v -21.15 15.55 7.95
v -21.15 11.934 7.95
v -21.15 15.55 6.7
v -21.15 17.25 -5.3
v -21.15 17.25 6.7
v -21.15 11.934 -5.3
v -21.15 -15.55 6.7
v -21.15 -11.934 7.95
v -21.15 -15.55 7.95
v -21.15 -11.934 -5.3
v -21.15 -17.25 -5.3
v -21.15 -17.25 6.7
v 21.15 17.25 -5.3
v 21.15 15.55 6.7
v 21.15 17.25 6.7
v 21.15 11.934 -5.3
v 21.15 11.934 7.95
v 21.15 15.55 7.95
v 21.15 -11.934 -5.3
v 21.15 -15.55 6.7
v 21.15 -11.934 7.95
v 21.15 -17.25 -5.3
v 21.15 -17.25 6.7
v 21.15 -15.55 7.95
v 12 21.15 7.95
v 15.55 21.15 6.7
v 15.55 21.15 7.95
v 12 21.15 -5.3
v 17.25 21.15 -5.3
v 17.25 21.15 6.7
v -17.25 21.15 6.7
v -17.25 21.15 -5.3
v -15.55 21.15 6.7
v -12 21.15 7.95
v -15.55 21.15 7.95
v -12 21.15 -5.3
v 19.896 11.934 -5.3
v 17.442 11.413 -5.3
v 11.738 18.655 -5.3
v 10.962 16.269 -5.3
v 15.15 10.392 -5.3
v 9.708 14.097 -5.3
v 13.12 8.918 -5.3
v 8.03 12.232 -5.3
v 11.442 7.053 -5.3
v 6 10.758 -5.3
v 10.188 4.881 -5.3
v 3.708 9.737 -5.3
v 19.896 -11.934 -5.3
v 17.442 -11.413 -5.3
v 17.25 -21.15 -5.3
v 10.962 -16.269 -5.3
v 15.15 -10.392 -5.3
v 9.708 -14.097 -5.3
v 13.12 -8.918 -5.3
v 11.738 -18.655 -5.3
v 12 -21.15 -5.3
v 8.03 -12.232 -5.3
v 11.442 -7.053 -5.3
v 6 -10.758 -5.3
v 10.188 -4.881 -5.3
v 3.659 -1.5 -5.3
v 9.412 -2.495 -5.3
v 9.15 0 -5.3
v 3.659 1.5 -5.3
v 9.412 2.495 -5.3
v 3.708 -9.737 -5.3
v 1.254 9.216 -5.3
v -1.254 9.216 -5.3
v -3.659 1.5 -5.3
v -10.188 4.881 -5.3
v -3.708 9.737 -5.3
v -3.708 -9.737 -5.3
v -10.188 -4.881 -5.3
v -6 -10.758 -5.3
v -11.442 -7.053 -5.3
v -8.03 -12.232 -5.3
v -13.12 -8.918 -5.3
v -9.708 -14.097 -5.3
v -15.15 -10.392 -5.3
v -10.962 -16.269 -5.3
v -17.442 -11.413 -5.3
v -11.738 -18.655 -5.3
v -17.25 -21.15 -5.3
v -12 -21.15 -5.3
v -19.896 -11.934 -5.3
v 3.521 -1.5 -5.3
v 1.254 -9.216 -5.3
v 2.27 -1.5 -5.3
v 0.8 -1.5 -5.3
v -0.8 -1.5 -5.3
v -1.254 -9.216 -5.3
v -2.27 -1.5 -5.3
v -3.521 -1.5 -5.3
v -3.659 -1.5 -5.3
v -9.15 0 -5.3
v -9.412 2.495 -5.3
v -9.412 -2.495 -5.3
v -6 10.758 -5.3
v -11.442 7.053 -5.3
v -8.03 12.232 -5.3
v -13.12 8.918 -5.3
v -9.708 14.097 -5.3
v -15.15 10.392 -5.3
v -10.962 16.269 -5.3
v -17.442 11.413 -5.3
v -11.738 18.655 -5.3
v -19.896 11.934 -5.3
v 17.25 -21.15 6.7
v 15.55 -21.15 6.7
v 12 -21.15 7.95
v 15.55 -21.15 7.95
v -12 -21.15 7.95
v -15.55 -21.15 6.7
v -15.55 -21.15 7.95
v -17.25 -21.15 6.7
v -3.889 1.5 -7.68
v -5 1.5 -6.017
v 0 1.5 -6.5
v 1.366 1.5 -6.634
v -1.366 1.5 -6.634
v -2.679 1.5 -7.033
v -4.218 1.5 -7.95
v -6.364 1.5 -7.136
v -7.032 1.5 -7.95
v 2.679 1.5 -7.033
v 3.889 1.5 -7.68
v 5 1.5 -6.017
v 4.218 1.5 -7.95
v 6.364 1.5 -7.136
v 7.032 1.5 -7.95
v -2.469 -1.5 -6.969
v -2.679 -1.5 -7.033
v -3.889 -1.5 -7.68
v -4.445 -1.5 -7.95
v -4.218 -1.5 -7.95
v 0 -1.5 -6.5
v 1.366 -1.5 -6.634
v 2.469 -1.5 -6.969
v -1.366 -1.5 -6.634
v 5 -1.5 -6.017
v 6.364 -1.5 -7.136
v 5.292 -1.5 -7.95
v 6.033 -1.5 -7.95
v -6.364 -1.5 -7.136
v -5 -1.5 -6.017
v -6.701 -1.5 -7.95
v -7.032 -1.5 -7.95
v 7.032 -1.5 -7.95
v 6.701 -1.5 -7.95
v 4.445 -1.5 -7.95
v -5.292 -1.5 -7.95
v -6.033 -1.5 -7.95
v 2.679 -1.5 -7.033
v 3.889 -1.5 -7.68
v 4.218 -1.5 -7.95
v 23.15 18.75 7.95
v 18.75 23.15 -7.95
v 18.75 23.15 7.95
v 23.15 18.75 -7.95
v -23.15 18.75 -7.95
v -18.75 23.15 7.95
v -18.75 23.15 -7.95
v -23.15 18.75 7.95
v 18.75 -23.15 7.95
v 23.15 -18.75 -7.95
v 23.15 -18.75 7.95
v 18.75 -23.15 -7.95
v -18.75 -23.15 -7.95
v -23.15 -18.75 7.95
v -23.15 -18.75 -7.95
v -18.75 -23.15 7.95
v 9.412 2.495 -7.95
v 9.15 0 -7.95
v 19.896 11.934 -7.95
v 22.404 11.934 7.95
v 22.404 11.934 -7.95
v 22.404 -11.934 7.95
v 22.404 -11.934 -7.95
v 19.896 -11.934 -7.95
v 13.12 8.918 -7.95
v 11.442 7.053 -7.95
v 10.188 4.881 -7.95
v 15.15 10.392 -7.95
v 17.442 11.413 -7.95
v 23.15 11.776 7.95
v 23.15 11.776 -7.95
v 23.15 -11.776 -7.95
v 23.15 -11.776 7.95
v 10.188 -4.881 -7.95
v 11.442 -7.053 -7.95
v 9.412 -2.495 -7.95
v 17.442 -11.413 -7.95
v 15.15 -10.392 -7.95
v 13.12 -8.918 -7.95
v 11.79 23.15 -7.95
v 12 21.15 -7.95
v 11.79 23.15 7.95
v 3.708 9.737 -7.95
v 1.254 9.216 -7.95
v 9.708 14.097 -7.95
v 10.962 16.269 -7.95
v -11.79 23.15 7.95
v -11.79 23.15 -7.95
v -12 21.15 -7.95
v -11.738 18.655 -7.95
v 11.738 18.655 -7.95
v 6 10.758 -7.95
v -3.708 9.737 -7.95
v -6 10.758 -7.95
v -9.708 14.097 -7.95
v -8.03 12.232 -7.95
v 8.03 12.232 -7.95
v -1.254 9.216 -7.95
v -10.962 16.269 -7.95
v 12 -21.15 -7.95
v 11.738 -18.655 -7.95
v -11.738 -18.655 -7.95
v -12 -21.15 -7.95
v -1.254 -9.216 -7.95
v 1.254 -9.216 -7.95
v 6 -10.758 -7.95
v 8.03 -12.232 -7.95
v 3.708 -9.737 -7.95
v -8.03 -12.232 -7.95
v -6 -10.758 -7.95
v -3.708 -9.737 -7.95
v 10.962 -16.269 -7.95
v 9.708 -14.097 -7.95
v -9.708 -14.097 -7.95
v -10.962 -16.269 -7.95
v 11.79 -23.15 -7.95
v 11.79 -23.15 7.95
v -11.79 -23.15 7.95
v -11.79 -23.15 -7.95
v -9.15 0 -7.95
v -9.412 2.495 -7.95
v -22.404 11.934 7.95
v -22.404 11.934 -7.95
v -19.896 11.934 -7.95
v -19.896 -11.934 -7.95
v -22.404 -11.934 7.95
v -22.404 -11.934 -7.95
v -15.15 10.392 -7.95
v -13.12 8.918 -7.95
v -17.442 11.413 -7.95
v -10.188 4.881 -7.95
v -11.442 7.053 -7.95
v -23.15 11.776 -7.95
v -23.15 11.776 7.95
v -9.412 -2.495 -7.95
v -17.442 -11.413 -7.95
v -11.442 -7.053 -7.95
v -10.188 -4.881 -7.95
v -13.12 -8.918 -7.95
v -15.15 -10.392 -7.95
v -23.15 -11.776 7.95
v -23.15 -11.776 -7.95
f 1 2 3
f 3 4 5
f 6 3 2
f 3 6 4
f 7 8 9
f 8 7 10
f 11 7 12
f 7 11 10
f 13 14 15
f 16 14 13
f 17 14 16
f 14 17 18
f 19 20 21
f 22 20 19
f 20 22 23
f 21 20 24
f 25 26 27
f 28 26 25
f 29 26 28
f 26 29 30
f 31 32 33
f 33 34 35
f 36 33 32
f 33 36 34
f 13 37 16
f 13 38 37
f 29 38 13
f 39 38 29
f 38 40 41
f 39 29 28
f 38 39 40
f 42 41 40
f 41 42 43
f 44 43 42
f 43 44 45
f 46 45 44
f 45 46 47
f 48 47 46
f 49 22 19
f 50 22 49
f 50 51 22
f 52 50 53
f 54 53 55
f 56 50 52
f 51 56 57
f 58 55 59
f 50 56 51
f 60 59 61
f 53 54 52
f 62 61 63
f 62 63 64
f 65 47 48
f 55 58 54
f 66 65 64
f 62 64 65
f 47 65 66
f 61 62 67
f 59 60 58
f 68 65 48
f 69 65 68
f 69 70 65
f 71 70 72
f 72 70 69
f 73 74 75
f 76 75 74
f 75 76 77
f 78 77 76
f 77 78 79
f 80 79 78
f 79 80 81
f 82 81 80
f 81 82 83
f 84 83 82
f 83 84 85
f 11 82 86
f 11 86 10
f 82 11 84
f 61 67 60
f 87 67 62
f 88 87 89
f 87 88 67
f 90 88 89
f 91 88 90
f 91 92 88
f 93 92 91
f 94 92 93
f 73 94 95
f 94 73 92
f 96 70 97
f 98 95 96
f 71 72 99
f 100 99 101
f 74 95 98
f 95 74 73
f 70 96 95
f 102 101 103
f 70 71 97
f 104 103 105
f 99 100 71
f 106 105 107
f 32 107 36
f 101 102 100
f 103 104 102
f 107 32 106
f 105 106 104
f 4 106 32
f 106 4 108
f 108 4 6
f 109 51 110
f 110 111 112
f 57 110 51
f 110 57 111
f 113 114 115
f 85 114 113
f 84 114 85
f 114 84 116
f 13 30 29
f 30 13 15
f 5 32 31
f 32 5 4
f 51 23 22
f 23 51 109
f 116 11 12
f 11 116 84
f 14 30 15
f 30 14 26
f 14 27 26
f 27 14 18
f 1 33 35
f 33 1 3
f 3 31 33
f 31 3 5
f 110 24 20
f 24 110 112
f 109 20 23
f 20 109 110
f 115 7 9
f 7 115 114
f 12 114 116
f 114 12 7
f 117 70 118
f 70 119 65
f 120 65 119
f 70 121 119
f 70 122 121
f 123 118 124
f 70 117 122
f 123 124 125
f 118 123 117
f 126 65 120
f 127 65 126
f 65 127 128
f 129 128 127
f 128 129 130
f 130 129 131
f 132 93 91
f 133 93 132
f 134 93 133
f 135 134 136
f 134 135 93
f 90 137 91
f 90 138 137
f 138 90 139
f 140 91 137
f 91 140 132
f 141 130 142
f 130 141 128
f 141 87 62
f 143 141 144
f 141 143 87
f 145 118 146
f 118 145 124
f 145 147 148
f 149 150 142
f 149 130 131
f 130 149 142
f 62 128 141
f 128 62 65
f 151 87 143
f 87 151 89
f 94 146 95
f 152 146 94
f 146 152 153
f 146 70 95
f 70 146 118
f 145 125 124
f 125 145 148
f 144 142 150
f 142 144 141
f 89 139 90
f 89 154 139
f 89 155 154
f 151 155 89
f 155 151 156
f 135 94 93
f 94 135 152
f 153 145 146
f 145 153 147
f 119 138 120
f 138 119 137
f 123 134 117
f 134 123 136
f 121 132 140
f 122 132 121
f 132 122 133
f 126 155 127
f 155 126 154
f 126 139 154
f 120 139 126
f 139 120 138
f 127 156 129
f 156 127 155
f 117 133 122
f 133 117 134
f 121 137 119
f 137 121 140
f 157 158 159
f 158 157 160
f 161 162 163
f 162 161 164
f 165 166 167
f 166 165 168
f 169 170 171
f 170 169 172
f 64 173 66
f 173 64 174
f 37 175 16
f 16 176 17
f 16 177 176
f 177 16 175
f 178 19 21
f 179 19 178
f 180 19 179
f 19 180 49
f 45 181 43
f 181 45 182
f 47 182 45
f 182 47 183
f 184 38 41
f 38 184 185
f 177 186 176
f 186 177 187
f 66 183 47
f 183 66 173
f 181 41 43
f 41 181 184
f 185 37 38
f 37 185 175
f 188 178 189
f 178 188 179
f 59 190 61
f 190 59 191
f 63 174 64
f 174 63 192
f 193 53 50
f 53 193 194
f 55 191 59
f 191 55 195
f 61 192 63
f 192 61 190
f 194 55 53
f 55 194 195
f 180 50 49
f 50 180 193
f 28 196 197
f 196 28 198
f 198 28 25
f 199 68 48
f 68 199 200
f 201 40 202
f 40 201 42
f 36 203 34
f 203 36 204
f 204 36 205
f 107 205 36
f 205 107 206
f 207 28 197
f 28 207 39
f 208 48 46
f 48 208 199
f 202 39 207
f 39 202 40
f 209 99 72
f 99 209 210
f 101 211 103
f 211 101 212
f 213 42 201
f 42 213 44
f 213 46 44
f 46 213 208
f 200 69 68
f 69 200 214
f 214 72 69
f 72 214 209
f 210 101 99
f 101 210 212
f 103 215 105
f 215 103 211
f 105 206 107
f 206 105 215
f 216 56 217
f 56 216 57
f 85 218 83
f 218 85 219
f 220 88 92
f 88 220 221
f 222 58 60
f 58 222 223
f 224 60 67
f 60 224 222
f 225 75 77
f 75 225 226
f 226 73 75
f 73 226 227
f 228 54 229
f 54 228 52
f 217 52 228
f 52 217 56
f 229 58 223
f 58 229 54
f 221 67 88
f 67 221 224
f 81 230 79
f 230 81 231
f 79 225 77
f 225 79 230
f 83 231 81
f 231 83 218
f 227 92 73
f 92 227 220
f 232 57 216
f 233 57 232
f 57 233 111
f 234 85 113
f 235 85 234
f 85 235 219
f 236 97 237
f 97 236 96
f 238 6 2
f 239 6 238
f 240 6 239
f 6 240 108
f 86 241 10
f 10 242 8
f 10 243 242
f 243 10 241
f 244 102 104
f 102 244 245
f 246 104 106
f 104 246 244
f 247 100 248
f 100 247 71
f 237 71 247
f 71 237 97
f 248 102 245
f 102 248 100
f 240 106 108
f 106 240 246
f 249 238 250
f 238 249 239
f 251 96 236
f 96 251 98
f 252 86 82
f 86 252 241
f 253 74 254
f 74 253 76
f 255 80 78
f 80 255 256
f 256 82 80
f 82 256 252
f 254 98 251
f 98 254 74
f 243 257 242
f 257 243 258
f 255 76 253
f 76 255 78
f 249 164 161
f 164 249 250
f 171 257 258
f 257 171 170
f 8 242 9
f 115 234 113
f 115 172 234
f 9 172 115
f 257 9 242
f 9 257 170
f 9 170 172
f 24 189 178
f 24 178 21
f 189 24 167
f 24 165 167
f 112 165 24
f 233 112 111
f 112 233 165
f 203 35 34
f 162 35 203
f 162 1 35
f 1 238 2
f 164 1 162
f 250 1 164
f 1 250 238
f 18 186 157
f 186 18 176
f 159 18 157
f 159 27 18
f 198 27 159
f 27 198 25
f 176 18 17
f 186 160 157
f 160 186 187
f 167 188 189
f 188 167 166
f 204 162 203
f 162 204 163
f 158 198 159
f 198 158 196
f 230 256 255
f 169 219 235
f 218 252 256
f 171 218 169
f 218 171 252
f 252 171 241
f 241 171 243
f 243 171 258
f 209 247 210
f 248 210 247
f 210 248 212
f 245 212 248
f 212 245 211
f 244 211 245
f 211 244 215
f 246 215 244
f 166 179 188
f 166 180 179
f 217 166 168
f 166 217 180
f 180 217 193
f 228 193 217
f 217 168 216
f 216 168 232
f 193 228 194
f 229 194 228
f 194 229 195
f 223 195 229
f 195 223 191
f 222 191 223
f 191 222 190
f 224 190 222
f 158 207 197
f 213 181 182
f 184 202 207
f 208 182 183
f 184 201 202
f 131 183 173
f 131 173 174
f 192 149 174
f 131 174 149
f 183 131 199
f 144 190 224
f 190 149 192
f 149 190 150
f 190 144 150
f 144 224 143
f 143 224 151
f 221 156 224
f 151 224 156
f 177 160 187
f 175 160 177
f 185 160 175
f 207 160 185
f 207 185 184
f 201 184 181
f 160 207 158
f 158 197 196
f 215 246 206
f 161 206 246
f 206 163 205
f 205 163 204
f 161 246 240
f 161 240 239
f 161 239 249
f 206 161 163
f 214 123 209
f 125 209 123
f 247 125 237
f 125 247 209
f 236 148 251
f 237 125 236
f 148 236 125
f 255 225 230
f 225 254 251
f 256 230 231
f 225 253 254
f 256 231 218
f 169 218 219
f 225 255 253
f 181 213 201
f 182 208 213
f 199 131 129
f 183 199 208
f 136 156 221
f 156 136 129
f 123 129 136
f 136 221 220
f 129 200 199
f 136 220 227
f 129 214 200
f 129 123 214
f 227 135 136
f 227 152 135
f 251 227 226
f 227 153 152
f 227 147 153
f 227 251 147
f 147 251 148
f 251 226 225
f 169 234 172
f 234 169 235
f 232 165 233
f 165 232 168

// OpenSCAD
// file: ../../../configuration.scad
/*
	Konfiguracni soubor 3D tiskarny RebeliX X2
	
	Sledujte nas na:		  
			www.RepRap4U.cz
			www.facebook.com/RebeliX.cz
			https://twitter.com/reprap4u
			https://plus.google.com/+Reprap4uCz-3Dtiskarna-RebeliX
*/

/*================ Slic3r nastaveni ==========================*/

// Vyska vrstvy pro tisknuti dilu [mm]
layer_height = 0.3;

// Sirka vytlacovaneho materialu [mm]
extrusion_width = 0.66; //Slic3r->Print Settings->Advanced->Default extrusion width

/*==================== M6 sroub ==============================*/

// Rezerva prumeru hlavy sroubu [mm]
space = 1;

// Prumer hlavy M6 sroubu (pricte se rezerva) [mm]
M6_head_diameter = 10.6+space;
//M6_head_diameter = 12+space;

// Vyska hlavy M6 sroubu (dulezite pro zapusteni hlavy sroubu do plastu) [mm]
M6_head_height = 3.6;
//M6_head_height = 4.5;

// Delka sroubu M6 [mm]
// M6x12
M6_lenght = 12;

/*=================== Nastaveni dilu =========================*/

// Posun Z zakladny
z_base_offset = 11;

// Tloustka rohovych spojek
// 5 mm => sroub M6x14 s podlozkou
// 3 mm => sroub M6x12 s podlozkou
coupler_thickness = 5;

// Prumer 8mm tyce
rod_8mm_d = 8.2;

// Posun drzacku mezi x-motor a x-end
x_holder_position = 6.5;

/*======================== Motory ============================*/

// Delka motoru (ovlivni dily a delky tyci pro osy Z a Y)
//SX17-1003LQFE (doporuceno hlavne na osu Z)
motor_length = 29.5;
//SX17-1003 (doporuceno hlavne na osu Z), SX17-0503LQEF
//motor_length = 34;
//SX17-1005
//motor_length = 40;
//SX17-0905 - zde je jiz problem s velkou vyskou motoru na ose Z - musi se upravit endstop-holder
//motor_length = 48;

/*================ Remeny a remenicky ========================*/

// GT2 
belt_tooth_distance = 2;
belt_tooth_ratio = 0.5;

// T2.5
//belt_tooth_distance = 2.5;
//belt_tooth_ratio = 0.68;
// main file
// RebeliX
//
// Drzak kabelu nacvaknutelny na motor NEMA17
// GNU GPL v3
// Martin Neruda <neruda@reprap4u.cz>
// http://www.reprap4u.cz

include <../../../configuration.scad>

tloustka_steny = 2;
// 0503 LQEF
//vyska_kraje = 11.4;
// 1003 LQEF, 1005 LQEF
vyska_kraje = 12;

vyska_dilu = vyska_kraje+2.65+1.25;

module holder_base(){
  cube([42.3+2*tloustka_steny,42.3+2*tloustka_steny,vyska_dilu],center=true);
}

module holder_cuts(){
  difference(){
    translate([0,0,2]) cube([42.3,42.3,vyska_dilu - 1.3],center=true);
    // Rohy
    translate([34.5/2,42.3/2,-6]) rotate([0,0,-45]) cube([10,10,14]); 
	translate([-34.5/2,42.3/2,-6]) rotate([0,0,135]) cube([10,10,14]);
    translate([34.5/2,-42.3/2,-6]) rotate([0,0,-45]) cube([10,10,14]);
	translate([-34.5/2,-42.3/2,-6]) rotate([0,0,135]) cube([10,10,14]);	
	// Packy
	translate([34.5/2-1.7,42.3/2,vyska_dilu/2 - 1.25]) rotate([0,0,-45]) cube([10,10,10]);
	translate([-34.5/2+1.7,42.3/2,vyska_dilu/2 - 1.25]) rotate([0,0,135]) cube([10,10,10]);
	translate([34.5/2-1.7,-42.3/2,vyska_dilu/2 - 1.25]) rotate([0,0,-45]) cube([10,10,10]);
	translate([-34.5/2+1.7,-42.3/2,vyska_dilu/2 - 1.25]) rotate([0,0,135]) cube([10,10,10]);
  } 
  translate([33.5/2+tloustka_steny,42.3/2+tloustka_steny,-10]) rotate([0,0,-45]) cube([10,10,vyska_dilu + 5]);
  translate([-33.5/2-tloustka_steny,42.3/2+tloustka_steny,-10]) rotate([0,0,135]) cube([10,10,vyska_dilu + 5]);
  translate([33.5/2+tloustka_steny,-42.3/2-tloustka_steny,-10]) rotate([0,0,-45]) cube([10,10,vyska_dilu + 5]);
  translate([-33.5/2-tloustka_steny,-42.3/2-tloustka_steny,-10]) rotate([0,0,135]) cube([10,10,vyska_dilu + 5]);	
  // Setreni plastem
  translate([42.3/2,0,0]) cylinder(r=24/2,h=20,center=true);
  translate([0,42.3/2,0]) cylinder(r=24/2,h=20,center=true);
  translate([0,-42.3/2,0]) cylinder(r=24/2,h=20,center=true);
  translate([-42.3/2,0,0]) cylinder(r=24/2,h=20,center=true);
  // Otvor pro ZIP pasku
  translate([0,0,-13.5]) difference(){
    rotate([90,0,0]) cylinder(r=9,h=3,$fn=32,center=true);
	rotate([90,0,0]) cylinder(r=7,h=4,$fn=32,center=true);
  
  }
}

module nema17_cable_holder(){
	difference(){
	  holder_base();
	  holder_cuts();
	}
}

nema17_cable_holder();	
